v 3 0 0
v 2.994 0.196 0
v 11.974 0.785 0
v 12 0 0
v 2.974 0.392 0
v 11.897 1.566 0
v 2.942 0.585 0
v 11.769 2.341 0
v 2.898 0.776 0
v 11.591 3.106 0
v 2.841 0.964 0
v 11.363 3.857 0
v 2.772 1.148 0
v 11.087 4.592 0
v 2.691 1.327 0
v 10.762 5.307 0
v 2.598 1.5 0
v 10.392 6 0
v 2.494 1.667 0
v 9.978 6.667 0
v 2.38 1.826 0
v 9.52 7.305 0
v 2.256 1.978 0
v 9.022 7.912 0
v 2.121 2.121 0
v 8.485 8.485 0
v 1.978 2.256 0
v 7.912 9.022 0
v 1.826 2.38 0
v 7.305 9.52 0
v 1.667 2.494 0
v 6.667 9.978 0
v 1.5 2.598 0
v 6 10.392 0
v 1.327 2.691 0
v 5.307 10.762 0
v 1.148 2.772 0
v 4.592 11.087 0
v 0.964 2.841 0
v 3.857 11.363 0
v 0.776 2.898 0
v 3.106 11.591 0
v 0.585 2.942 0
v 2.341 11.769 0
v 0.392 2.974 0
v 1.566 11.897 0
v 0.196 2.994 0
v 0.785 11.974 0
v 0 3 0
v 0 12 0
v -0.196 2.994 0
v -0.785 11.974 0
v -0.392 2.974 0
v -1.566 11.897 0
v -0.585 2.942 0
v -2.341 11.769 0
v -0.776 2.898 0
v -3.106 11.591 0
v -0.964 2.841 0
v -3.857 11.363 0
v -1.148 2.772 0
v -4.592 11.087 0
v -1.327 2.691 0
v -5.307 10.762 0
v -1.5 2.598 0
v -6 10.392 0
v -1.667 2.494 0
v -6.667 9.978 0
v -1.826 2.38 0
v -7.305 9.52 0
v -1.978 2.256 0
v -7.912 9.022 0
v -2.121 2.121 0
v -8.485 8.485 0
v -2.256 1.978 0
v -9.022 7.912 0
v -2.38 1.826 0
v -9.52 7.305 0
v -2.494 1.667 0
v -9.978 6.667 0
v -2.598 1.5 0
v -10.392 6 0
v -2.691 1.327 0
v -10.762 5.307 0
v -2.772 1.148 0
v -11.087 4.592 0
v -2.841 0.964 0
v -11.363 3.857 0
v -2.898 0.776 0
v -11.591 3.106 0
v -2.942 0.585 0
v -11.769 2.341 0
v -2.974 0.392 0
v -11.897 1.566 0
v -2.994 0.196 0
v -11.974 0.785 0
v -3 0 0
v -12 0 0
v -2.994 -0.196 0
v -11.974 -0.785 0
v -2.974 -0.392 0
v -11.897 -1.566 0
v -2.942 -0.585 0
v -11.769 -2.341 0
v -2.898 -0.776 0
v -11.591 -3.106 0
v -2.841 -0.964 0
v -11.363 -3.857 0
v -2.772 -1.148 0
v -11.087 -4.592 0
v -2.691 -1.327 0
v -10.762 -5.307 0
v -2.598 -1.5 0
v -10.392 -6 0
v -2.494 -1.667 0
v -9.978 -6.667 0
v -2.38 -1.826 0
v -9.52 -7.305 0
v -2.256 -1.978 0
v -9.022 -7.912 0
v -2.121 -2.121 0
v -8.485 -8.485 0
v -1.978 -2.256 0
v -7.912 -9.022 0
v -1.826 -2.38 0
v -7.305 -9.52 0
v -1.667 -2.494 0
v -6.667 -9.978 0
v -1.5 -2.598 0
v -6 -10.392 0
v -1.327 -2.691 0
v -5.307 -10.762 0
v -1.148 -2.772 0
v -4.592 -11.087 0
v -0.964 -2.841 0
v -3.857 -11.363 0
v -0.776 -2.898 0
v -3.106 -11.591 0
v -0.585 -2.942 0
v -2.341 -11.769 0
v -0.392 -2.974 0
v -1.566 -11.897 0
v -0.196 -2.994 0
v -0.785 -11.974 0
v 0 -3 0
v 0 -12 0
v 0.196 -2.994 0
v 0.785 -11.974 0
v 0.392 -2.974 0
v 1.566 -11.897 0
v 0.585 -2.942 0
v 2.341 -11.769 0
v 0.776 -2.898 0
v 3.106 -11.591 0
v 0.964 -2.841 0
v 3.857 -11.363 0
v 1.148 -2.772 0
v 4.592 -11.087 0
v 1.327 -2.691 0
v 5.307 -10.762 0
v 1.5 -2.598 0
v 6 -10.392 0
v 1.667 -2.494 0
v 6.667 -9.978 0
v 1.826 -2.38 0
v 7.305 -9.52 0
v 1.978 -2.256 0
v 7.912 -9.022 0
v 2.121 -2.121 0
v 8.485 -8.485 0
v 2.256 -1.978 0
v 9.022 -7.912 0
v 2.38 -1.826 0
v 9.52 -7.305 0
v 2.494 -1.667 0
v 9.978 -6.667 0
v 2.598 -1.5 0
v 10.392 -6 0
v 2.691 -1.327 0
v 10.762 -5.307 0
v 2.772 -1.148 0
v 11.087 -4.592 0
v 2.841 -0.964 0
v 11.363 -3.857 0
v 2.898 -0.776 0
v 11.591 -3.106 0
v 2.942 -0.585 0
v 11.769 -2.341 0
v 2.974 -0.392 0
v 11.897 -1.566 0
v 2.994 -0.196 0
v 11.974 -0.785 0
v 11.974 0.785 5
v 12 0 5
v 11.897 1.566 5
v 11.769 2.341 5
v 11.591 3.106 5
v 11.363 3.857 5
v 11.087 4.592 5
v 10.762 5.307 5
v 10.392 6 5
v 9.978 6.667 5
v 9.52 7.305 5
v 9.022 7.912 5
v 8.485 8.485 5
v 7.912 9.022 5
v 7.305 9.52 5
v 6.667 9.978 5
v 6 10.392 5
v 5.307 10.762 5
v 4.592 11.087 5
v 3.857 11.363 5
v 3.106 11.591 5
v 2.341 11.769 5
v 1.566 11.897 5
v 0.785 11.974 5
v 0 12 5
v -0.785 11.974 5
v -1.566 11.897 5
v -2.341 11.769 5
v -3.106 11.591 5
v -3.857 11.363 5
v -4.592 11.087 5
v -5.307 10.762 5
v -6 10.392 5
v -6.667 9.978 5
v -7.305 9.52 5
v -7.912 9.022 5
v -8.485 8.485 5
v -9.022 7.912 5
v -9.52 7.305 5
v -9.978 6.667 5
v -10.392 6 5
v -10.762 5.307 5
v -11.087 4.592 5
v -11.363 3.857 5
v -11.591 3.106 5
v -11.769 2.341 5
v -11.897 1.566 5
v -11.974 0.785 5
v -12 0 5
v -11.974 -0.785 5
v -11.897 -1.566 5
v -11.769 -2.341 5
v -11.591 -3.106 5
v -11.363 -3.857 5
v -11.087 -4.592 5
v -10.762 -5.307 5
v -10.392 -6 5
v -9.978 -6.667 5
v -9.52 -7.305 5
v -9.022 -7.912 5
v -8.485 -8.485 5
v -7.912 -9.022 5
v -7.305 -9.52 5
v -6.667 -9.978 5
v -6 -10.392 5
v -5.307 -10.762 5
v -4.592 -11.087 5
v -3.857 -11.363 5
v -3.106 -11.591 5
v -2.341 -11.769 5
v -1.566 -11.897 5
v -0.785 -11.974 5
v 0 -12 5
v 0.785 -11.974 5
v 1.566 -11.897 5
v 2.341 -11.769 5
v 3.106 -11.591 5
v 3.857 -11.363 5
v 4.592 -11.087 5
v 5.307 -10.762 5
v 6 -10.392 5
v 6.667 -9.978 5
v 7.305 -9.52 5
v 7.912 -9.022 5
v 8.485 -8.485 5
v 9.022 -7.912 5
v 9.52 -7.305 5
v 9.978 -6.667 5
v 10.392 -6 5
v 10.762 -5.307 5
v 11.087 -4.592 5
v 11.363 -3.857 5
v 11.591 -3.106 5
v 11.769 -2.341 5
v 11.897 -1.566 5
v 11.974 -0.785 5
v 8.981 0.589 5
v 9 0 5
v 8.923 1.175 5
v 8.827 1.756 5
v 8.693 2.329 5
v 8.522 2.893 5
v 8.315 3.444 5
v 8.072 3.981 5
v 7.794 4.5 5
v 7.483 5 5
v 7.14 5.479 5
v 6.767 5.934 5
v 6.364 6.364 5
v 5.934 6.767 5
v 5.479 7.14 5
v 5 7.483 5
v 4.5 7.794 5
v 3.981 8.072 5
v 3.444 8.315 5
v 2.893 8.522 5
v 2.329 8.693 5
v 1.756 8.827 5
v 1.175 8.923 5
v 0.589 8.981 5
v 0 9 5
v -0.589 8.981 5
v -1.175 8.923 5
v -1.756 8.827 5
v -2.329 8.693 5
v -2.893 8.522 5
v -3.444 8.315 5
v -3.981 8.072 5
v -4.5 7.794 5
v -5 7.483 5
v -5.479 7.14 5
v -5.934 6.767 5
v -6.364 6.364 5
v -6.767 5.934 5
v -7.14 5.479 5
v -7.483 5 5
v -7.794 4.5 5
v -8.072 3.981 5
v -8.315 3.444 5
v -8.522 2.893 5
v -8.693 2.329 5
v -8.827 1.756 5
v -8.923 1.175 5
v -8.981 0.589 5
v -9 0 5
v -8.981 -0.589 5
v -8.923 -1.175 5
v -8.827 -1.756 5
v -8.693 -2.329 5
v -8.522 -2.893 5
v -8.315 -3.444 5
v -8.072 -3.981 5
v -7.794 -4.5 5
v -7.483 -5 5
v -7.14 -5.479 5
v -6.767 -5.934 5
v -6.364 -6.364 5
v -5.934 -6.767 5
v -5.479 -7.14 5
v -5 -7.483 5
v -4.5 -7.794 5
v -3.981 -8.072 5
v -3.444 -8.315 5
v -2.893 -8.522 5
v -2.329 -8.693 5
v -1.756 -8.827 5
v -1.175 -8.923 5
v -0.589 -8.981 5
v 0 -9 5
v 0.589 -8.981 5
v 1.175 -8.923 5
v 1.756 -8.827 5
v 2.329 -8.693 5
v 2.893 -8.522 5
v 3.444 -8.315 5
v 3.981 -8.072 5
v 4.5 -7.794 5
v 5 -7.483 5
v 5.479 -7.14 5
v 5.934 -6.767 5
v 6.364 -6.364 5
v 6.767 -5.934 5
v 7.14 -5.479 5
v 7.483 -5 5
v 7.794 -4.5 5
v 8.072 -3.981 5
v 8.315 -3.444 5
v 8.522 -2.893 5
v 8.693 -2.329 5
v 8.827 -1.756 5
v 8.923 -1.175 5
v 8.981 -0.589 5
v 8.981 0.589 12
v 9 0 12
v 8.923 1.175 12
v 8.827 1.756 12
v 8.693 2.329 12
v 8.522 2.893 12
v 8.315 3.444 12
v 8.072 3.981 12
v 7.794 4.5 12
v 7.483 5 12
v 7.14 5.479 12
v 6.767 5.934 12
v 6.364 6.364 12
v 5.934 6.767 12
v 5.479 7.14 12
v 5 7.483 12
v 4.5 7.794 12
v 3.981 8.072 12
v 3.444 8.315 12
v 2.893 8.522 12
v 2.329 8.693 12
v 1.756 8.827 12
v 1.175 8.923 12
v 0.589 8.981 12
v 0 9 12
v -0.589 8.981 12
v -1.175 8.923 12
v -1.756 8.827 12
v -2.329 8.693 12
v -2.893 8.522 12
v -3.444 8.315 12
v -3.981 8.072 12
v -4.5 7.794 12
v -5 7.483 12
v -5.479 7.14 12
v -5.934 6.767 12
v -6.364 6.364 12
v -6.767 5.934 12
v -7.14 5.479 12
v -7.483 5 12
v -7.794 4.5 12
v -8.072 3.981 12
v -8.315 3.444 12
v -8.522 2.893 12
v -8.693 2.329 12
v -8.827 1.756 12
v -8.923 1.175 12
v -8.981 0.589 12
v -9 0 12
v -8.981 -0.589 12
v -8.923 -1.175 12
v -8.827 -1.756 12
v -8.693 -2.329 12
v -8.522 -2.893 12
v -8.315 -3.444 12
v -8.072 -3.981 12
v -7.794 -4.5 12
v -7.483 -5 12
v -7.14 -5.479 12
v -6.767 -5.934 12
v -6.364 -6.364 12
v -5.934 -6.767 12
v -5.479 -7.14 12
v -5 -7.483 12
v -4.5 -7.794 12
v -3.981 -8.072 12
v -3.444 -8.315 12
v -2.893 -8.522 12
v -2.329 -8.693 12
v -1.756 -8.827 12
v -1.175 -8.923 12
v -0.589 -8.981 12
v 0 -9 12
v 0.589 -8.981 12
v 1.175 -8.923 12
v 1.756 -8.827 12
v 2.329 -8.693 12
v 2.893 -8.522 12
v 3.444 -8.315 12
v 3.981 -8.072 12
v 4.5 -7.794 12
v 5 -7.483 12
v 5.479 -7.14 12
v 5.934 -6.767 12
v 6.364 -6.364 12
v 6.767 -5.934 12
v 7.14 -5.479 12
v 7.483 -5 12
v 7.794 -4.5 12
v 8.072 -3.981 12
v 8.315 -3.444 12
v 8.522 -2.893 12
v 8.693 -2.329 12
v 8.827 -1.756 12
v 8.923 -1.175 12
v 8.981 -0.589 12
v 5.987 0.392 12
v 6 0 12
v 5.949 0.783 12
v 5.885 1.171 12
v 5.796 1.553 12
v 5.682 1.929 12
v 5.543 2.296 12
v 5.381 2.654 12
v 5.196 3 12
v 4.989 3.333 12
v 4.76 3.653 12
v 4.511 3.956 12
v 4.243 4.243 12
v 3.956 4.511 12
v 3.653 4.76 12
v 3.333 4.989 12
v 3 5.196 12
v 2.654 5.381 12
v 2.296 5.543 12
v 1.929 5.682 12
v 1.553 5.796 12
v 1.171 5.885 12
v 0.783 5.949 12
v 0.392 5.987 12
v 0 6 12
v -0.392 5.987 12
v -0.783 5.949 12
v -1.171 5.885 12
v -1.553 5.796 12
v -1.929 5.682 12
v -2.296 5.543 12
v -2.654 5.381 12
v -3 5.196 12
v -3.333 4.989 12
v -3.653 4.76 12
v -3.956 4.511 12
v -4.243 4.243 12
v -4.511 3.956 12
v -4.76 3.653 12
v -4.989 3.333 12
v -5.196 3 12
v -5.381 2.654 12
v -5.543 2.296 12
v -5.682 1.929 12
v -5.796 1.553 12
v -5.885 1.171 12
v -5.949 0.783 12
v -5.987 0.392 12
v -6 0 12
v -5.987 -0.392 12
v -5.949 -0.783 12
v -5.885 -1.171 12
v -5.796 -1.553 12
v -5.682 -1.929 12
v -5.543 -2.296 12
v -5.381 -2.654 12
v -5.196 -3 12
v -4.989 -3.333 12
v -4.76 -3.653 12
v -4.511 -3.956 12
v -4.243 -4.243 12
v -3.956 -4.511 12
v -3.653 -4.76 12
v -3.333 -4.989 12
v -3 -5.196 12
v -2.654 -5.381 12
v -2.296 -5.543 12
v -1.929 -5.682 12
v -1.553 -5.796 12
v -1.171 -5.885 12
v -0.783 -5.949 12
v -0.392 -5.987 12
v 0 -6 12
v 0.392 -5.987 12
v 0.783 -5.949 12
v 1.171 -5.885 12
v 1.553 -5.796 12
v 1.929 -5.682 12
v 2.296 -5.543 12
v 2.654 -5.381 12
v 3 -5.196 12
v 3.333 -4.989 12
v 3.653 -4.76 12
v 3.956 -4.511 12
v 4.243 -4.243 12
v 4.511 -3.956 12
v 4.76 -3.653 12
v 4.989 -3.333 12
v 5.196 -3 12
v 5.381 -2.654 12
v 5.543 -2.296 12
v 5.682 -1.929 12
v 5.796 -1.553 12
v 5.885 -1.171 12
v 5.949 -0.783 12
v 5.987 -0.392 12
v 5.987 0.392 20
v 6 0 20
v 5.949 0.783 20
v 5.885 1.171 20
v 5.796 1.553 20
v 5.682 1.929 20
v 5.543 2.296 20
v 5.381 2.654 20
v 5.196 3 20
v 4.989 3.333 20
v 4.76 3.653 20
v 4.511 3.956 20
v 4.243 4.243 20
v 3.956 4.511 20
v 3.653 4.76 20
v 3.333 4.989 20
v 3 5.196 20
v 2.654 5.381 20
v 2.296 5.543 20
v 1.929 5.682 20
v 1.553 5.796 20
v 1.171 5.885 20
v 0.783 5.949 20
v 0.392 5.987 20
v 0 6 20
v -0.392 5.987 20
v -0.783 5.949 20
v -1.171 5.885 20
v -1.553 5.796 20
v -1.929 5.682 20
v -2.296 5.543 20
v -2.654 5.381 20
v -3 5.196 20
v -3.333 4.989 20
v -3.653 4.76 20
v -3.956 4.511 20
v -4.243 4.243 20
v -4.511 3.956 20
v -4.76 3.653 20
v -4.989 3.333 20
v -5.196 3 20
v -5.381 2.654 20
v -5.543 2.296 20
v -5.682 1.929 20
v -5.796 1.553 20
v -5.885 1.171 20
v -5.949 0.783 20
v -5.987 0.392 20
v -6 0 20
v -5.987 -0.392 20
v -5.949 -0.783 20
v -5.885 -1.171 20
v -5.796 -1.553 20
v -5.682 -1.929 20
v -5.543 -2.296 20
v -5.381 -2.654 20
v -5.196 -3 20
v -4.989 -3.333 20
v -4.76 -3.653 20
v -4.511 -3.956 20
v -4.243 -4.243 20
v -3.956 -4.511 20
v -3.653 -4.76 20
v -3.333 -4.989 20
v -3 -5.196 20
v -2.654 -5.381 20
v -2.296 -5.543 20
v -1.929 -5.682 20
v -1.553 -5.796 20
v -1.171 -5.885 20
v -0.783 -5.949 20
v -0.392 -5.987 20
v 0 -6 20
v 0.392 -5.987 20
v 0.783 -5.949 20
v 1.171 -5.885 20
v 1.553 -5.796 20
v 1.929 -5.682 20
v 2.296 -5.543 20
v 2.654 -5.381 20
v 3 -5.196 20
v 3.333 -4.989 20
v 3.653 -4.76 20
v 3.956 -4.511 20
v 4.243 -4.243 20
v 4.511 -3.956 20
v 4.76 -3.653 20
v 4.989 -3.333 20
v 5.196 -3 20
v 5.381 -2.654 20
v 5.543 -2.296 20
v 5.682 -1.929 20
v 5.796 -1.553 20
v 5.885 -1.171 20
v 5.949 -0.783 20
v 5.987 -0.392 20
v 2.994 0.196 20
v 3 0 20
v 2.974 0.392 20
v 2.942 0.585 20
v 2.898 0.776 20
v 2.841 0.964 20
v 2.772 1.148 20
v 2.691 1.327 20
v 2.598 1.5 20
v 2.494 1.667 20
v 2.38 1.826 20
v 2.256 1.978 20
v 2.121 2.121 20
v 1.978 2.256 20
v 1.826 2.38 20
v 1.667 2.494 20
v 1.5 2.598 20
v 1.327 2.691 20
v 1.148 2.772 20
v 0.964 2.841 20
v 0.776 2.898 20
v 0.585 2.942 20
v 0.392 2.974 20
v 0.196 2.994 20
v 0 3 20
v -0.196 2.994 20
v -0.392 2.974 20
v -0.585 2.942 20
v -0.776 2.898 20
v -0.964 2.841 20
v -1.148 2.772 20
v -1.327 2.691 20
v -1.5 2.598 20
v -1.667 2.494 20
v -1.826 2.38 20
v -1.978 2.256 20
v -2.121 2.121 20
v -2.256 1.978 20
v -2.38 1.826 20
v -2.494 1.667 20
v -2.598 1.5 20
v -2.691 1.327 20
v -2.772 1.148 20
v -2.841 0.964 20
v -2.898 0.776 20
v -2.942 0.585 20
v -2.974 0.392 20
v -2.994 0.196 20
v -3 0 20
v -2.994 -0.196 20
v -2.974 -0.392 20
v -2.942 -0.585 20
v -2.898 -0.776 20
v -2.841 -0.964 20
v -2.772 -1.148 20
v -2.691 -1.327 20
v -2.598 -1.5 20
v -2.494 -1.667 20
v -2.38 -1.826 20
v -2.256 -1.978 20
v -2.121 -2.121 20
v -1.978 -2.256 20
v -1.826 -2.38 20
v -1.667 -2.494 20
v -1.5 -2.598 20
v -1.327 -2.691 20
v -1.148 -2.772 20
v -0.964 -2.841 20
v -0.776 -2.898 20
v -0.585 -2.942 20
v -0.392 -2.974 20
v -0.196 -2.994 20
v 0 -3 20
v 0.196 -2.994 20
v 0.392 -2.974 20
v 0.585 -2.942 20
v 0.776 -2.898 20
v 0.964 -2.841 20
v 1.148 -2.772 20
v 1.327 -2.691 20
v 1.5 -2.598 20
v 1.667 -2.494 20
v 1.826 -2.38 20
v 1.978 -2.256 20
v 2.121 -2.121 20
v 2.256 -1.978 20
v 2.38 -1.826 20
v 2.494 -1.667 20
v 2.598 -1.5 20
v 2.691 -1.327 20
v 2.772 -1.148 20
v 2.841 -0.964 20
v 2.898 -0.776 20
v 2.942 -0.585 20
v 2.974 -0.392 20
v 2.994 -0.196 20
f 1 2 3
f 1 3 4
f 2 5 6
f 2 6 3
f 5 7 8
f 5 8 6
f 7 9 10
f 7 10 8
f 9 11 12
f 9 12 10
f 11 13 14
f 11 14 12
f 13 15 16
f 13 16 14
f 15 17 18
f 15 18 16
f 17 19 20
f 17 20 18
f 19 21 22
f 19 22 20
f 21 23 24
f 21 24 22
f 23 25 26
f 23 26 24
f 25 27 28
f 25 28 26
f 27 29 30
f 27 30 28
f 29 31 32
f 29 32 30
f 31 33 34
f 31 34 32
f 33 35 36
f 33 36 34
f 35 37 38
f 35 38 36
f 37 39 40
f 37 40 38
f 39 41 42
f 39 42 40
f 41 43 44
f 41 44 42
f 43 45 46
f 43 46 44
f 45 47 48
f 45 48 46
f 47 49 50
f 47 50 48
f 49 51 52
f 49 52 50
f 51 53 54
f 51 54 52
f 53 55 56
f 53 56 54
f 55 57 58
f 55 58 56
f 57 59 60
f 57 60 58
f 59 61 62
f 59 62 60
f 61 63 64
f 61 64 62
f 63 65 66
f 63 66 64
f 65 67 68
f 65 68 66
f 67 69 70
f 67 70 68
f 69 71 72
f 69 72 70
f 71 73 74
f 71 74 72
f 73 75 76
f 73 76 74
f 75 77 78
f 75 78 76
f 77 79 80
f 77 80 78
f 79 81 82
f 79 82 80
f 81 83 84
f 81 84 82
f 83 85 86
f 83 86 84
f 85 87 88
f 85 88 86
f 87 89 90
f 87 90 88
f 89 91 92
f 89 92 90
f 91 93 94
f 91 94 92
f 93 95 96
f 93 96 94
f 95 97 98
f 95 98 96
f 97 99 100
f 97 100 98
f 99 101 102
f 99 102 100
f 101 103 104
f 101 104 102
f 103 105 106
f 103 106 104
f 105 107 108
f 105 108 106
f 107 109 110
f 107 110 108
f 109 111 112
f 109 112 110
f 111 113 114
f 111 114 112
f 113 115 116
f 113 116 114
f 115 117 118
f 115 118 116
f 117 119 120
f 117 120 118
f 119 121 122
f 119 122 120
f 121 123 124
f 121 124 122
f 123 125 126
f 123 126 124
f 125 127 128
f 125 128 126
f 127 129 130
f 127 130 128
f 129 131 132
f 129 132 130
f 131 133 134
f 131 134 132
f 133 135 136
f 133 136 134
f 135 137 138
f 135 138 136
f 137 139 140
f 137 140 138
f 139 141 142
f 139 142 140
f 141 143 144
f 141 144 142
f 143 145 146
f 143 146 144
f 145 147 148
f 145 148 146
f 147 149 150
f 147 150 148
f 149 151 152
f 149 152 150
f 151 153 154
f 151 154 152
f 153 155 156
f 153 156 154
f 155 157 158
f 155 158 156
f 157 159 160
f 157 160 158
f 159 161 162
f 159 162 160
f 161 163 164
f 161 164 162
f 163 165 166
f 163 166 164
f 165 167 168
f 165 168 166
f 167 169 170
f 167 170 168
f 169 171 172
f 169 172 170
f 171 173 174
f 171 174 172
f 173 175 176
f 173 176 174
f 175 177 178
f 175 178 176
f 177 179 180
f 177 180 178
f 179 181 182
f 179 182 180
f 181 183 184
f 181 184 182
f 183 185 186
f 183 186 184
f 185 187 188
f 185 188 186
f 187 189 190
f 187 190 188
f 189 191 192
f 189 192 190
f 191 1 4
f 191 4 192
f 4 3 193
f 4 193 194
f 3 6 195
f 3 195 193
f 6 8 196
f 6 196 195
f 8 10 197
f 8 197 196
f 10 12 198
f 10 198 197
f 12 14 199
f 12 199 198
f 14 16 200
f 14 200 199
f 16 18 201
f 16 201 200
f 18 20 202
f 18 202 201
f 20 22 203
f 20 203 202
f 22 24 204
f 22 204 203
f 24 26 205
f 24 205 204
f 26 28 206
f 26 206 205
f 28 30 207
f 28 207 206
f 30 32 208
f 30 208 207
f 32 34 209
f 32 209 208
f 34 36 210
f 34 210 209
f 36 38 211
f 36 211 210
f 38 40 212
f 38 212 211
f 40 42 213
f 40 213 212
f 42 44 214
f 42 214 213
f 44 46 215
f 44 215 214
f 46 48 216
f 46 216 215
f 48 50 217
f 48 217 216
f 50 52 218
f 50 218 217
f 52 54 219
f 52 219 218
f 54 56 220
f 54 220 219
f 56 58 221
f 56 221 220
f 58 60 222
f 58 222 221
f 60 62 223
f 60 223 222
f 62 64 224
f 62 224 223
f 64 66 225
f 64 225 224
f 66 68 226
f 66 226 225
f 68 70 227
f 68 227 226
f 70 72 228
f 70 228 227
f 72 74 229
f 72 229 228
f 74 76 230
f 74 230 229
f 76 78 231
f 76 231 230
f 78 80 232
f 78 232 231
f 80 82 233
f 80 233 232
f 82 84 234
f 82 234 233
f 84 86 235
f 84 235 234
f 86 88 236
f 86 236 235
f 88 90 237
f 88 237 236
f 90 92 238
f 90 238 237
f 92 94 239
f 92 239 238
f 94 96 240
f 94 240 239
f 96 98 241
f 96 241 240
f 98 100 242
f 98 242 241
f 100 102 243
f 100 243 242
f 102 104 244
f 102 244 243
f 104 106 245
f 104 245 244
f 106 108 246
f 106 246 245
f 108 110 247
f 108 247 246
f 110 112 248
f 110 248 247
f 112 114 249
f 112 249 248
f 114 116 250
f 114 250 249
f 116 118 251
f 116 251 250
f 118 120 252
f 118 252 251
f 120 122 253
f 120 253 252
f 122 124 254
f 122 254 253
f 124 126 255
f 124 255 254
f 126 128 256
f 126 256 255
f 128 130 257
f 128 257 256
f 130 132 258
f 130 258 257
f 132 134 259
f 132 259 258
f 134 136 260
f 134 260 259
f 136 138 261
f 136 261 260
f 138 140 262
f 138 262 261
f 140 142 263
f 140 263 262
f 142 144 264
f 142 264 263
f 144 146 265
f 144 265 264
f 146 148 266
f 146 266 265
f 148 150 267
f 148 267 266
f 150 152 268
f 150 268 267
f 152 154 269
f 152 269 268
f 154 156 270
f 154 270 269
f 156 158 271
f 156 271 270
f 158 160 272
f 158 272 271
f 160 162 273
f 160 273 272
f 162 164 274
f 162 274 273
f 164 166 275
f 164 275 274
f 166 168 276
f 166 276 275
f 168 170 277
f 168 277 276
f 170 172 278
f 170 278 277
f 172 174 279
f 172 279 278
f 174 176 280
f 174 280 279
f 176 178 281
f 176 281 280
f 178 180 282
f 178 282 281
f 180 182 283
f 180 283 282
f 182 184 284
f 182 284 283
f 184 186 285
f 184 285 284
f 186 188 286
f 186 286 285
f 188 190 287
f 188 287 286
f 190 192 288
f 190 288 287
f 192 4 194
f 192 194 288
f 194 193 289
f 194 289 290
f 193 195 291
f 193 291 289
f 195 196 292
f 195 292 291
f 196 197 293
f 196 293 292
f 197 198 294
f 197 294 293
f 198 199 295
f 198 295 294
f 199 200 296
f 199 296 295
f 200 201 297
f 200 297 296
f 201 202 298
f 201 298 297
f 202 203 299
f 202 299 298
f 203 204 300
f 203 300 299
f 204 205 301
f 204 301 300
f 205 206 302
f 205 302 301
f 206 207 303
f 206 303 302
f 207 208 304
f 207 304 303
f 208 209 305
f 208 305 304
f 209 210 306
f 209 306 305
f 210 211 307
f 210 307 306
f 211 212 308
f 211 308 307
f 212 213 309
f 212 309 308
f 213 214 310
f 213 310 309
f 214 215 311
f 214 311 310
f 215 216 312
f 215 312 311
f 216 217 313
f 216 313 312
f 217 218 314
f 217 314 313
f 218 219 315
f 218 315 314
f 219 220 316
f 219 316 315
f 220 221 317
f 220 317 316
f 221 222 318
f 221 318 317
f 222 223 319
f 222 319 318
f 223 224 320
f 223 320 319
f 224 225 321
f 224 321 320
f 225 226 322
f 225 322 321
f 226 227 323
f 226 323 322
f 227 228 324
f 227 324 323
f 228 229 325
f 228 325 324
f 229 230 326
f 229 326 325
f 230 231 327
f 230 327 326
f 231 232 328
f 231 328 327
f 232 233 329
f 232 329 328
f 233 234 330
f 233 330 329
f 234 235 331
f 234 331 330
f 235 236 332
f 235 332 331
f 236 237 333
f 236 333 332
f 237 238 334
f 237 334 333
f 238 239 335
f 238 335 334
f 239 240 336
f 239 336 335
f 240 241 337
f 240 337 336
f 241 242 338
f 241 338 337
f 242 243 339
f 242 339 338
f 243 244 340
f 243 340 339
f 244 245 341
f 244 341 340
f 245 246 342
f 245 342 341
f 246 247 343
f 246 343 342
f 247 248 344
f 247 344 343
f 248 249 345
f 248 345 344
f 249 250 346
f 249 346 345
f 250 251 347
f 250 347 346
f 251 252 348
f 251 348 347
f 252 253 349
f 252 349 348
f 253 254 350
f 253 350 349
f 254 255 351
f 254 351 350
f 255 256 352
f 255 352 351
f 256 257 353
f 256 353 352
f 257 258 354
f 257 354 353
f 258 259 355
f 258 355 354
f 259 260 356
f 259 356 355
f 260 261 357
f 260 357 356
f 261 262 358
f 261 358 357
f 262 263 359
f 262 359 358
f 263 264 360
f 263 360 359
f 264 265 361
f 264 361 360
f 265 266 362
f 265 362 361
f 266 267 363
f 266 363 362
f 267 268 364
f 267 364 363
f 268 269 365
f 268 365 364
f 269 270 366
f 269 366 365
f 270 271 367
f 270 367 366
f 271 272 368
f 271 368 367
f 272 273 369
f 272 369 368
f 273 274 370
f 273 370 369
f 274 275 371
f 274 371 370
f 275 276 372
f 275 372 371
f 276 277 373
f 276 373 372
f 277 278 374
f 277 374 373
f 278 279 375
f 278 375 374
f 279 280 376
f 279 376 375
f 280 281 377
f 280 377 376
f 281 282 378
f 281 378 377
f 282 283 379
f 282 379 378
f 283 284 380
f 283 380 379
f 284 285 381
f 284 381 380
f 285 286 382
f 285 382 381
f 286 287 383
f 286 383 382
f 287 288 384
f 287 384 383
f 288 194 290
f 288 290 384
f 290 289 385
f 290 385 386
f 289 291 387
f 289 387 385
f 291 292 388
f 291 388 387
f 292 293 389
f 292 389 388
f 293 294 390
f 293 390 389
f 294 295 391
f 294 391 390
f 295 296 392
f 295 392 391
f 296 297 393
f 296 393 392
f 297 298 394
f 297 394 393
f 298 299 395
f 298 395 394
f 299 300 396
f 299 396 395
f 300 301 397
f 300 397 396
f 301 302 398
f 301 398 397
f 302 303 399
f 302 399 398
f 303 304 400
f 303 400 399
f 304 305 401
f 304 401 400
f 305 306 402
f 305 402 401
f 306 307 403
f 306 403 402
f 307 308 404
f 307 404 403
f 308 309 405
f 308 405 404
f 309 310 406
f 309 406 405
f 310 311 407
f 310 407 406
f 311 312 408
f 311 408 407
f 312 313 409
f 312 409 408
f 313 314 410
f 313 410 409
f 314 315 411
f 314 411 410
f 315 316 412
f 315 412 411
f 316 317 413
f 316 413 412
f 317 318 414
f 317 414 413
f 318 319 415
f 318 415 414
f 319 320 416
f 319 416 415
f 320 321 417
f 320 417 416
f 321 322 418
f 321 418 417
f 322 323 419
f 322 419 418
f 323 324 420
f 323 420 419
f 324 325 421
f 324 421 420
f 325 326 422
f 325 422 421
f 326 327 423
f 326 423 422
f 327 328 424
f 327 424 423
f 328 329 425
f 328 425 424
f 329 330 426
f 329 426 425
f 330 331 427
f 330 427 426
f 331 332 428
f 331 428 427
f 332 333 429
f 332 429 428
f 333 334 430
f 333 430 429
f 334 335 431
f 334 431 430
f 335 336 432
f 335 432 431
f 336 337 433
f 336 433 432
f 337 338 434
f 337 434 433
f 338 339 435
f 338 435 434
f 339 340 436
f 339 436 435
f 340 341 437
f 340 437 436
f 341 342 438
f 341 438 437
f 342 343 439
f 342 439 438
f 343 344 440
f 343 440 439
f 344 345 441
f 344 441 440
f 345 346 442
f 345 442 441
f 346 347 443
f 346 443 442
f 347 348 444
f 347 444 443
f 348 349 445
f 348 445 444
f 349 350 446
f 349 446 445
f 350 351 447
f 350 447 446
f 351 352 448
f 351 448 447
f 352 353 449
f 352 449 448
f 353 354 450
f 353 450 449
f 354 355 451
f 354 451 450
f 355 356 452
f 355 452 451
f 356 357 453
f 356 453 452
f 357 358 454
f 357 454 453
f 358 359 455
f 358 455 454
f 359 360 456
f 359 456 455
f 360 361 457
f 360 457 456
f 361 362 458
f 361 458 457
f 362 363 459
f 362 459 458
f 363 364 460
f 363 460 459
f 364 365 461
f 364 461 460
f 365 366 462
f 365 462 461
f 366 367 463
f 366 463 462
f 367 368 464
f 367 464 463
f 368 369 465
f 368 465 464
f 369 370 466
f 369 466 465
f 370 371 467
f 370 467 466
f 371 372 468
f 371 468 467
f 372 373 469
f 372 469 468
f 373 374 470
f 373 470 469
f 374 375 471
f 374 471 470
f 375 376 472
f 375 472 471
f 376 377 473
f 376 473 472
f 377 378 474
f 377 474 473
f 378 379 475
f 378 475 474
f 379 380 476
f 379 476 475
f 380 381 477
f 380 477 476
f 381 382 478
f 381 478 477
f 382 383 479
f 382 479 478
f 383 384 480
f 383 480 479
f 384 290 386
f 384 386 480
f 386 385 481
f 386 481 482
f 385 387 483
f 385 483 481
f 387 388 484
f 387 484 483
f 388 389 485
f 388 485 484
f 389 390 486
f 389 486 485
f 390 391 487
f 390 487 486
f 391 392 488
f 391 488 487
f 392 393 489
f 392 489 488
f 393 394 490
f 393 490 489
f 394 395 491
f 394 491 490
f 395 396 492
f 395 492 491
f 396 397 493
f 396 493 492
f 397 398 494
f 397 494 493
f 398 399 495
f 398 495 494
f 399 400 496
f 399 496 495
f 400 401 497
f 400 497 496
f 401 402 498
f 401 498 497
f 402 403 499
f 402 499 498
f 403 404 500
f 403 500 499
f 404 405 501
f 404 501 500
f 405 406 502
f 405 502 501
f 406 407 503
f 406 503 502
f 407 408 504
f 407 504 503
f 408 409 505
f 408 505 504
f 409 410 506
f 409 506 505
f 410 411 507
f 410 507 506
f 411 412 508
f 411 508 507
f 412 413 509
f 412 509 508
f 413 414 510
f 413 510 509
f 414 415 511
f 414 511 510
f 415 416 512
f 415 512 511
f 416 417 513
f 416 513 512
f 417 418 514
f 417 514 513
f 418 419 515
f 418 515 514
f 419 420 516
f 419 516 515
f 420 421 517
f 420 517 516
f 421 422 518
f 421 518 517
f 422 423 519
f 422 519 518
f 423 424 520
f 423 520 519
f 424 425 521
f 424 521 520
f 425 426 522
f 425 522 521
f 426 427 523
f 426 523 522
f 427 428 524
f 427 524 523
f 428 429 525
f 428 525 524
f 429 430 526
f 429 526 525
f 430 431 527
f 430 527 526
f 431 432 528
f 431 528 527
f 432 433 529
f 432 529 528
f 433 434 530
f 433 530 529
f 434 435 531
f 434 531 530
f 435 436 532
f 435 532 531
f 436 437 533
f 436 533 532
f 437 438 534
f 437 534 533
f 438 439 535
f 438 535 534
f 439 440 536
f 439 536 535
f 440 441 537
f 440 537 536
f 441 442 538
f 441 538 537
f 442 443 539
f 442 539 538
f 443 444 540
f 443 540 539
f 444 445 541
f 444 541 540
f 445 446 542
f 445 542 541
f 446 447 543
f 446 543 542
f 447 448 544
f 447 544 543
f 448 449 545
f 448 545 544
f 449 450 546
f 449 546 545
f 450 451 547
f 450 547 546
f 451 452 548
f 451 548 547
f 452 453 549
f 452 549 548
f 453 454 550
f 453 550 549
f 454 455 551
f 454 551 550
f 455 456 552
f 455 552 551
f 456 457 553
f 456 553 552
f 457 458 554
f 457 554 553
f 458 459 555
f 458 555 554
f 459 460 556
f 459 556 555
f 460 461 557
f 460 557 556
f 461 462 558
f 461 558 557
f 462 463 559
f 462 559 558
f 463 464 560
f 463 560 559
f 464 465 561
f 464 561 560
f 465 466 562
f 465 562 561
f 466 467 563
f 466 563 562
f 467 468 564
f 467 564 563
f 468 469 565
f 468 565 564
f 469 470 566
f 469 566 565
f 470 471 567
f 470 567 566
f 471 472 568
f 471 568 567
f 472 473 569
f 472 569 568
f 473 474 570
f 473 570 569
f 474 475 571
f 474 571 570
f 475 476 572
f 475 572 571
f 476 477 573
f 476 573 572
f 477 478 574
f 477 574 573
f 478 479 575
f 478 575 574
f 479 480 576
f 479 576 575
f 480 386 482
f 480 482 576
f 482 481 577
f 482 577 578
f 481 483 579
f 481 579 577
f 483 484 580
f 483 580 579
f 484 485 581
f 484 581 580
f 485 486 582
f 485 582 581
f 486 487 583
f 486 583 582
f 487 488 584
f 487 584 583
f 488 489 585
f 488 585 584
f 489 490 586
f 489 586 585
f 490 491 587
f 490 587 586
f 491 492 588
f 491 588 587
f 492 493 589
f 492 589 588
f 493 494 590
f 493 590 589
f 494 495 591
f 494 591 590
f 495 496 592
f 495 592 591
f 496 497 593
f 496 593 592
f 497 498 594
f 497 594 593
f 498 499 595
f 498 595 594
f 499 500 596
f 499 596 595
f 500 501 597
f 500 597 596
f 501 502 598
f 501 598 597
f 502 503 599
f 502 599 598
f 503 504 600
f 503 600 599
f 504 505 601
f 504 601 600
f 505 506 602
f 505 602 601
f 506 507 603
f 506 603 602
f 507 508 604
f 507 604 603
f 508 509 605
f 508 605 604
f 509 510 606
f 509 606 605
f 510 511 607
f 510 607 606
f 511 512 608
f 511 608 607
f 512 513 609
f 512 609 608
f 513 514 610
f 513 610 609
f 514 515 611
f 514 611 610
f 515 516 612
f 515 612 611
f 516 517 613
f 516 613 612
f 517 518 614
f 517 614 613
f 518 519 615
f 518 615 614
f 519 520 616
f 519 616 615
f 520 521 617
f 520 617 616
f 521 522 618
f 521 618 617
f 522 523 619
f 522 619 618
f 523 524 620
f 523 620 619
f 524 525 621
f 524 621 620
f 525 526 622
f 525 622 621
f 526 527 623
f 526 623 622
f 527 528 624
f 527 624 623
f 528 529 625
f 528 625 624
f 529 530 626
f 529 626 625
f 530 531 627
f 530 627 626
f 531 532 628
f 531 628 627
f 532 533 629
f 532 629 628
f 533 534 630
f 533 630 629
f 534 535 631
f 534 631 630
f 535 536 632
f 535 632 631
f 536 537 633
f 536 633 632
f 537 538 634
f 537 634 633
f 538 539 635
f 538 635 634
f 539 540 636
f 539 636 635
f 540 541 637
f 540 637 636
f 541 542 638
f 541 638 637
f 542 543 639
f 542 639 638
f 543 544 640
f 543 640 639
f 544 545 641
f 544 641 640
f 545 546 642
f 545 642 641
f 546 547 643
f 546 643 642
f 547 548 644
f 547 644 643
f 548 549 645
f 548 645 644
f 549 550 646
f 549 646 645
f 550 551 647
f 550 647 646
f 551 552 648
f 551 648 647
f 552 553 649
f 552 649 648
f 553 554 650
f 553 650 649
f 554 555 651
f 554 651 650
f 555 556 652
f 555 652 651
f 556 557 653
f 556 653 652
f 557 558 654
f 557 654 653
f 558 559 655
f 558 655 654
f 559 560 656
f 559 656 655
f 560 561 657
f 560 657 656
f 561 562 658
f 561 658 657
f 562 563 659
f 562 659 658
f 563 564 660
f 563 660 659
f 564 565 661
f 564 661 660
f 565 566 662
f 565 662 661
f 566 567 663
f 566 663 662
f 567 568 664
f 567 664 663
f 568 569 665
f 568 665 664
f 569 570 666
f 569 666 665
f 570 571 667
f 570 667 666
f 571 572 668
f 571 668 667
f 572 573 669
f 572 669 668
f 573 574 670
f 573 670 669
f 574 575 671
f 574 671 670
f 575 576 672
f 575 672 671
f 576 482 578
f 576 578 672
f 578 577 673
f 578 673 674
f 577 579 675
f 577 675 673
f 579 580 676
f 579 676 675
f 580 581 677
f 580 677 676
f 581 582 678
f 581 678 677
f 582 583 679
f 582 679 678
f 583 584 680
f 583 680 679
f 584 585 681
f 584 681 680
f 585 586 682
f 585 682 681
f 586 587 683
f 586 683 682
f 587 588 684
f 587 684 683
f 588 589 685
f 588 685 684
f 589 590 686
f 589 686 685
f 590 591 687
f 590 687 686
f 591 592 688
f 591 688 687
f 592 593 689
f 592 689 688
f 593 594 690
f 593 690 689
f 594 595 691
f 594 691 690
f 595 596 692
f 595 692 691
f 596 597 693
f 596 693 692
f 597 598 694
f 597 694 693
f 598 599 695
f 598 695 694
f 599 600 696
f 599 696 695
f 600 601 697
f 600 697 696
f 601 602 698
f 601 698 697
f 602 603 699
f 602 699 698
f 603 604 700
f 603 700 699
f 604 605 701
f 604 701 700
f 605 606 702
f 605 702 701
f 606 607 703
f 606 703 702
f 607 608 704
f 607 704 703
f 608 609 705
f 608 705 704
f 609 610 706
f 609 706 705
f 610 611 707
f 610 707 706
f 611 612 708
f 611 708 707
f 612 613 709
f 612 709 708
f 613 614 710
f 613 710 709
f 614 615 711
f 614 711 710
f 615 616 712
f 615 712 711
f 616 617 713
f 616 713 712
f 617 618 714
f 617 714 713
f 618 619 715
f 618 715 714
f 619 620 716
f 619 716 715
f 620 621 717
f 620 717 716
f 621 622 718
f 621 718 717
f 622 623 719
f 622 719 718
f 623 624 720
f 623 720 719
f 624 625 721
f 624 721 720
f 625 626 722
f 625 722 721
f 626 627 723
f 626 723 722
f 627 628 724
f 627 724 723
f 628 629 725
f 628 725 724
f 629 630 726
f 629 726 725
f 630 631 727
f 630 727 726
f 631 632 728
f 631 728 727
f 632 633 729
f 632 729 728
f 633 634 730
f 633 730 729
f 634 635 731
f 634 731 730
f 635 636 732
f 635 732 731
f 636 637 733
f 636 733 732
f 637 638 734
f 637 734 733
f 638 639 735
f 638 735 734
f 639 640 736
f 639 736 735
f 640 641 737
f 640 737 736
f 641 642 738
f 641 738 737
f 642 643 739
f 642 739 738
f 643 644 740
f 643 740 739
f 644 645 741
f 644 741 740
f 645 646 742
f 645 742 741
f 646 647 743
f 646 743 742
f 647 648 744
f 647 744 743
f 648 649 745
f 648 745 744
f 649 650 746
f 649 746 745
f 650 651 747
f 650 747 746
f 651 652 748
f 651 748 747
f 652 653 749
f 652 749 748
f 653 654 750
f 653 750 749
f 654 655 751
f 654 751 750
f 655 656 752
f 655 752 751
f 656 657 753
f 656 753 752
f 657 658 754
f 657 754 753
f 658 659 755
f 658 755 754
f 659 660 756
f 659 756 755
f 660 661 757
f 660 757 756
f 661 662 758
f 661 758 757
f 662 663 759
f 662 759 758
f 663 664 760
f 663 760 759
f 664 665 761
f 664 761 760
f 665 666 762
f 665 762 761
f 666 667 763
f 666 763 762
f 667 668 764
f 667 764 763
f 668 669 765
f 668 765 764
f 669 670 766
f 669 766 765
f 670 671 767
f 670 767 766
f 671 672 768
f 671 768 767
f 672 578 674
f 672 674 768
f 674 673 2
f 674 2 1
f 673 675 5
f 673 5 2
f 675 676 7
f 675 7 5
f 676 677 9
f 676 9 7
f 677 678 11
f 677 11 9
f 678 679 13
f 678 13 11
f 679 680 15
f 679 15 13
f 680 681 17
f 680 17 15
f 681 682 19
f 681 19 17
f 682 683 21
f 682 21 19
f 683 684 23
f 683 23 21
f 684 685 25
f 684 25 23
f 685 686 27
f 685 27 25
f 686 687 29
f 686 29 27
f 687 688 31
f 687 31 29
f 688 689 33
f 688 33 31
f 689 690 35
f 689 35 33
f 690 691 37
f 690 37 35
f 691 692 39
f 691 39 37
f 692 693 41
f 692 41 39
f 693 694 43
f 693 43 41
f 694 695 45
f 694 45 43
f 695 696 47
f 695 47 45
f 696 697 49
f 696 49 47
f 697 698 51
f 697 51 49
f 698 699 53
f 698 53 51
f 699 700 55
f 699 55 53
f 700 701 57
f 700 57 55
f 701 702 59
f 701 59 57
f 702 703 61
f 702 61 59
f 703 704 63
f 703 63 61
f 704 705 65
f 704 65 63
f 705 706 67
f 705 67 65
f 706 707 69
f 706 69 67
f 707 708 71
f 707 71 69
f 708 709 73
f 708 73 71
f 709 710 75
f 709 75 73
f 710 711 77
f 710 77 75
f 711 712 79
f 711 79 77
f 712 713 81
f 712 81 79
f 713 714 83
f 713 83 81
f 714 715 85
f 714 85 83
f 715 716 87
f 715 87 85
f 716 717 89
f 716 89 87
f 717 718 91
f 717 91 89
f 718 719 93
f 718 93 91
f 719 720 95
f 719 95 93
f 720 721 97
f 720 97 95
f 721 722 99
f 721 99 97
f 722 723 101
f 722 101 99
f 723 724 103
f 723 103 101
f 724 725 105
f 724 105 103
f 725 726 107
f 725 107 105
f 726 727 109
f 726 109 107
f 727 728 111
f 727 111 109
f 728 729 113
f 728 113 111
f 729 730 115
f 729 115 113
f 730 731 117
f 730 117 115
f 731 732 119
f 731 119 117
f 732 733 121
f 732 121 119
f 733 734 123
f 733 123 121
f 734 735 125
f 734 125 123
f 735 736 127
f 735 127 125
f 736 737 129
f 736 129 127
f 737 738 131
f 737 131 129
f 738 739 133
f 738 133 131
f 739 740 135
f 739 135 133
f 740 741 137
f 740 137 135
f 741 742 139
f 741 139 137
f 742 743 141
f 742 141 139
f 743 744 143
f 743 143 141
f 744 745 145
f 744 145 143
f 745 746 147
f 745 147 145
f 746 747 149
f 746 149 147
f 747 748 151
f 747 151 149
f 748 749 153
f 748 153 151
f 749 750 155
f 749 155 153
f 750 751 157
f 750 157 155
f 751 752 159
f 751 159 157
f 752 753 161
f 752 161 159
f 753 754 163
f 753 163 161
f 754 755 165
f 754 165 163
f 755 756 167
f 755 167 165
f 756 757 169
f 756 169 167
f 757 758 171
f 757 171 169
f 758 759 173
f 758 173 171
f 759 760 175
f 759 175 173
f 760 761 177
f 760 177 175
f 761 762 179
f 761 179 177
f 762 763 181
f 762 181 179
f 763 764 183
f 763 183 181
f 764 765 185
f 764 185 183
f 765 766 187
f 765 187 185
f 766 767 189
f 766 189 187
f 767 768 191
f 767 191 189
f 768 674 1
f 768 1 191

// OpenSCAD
// Original MechIntel educational model. CC0-1.0. Units: mm.
// Not a standardized or load-rated component.
$fn=96;
// Section points: [radius, height], mm. Edit to change the profile.
section=[[3, 0], [12, 0], [12, 5], [9, 5], [9, 12], [6, 12], [6, 20], [3, 20]];
rotate_extrude($fn=96) polygon(points=section);
